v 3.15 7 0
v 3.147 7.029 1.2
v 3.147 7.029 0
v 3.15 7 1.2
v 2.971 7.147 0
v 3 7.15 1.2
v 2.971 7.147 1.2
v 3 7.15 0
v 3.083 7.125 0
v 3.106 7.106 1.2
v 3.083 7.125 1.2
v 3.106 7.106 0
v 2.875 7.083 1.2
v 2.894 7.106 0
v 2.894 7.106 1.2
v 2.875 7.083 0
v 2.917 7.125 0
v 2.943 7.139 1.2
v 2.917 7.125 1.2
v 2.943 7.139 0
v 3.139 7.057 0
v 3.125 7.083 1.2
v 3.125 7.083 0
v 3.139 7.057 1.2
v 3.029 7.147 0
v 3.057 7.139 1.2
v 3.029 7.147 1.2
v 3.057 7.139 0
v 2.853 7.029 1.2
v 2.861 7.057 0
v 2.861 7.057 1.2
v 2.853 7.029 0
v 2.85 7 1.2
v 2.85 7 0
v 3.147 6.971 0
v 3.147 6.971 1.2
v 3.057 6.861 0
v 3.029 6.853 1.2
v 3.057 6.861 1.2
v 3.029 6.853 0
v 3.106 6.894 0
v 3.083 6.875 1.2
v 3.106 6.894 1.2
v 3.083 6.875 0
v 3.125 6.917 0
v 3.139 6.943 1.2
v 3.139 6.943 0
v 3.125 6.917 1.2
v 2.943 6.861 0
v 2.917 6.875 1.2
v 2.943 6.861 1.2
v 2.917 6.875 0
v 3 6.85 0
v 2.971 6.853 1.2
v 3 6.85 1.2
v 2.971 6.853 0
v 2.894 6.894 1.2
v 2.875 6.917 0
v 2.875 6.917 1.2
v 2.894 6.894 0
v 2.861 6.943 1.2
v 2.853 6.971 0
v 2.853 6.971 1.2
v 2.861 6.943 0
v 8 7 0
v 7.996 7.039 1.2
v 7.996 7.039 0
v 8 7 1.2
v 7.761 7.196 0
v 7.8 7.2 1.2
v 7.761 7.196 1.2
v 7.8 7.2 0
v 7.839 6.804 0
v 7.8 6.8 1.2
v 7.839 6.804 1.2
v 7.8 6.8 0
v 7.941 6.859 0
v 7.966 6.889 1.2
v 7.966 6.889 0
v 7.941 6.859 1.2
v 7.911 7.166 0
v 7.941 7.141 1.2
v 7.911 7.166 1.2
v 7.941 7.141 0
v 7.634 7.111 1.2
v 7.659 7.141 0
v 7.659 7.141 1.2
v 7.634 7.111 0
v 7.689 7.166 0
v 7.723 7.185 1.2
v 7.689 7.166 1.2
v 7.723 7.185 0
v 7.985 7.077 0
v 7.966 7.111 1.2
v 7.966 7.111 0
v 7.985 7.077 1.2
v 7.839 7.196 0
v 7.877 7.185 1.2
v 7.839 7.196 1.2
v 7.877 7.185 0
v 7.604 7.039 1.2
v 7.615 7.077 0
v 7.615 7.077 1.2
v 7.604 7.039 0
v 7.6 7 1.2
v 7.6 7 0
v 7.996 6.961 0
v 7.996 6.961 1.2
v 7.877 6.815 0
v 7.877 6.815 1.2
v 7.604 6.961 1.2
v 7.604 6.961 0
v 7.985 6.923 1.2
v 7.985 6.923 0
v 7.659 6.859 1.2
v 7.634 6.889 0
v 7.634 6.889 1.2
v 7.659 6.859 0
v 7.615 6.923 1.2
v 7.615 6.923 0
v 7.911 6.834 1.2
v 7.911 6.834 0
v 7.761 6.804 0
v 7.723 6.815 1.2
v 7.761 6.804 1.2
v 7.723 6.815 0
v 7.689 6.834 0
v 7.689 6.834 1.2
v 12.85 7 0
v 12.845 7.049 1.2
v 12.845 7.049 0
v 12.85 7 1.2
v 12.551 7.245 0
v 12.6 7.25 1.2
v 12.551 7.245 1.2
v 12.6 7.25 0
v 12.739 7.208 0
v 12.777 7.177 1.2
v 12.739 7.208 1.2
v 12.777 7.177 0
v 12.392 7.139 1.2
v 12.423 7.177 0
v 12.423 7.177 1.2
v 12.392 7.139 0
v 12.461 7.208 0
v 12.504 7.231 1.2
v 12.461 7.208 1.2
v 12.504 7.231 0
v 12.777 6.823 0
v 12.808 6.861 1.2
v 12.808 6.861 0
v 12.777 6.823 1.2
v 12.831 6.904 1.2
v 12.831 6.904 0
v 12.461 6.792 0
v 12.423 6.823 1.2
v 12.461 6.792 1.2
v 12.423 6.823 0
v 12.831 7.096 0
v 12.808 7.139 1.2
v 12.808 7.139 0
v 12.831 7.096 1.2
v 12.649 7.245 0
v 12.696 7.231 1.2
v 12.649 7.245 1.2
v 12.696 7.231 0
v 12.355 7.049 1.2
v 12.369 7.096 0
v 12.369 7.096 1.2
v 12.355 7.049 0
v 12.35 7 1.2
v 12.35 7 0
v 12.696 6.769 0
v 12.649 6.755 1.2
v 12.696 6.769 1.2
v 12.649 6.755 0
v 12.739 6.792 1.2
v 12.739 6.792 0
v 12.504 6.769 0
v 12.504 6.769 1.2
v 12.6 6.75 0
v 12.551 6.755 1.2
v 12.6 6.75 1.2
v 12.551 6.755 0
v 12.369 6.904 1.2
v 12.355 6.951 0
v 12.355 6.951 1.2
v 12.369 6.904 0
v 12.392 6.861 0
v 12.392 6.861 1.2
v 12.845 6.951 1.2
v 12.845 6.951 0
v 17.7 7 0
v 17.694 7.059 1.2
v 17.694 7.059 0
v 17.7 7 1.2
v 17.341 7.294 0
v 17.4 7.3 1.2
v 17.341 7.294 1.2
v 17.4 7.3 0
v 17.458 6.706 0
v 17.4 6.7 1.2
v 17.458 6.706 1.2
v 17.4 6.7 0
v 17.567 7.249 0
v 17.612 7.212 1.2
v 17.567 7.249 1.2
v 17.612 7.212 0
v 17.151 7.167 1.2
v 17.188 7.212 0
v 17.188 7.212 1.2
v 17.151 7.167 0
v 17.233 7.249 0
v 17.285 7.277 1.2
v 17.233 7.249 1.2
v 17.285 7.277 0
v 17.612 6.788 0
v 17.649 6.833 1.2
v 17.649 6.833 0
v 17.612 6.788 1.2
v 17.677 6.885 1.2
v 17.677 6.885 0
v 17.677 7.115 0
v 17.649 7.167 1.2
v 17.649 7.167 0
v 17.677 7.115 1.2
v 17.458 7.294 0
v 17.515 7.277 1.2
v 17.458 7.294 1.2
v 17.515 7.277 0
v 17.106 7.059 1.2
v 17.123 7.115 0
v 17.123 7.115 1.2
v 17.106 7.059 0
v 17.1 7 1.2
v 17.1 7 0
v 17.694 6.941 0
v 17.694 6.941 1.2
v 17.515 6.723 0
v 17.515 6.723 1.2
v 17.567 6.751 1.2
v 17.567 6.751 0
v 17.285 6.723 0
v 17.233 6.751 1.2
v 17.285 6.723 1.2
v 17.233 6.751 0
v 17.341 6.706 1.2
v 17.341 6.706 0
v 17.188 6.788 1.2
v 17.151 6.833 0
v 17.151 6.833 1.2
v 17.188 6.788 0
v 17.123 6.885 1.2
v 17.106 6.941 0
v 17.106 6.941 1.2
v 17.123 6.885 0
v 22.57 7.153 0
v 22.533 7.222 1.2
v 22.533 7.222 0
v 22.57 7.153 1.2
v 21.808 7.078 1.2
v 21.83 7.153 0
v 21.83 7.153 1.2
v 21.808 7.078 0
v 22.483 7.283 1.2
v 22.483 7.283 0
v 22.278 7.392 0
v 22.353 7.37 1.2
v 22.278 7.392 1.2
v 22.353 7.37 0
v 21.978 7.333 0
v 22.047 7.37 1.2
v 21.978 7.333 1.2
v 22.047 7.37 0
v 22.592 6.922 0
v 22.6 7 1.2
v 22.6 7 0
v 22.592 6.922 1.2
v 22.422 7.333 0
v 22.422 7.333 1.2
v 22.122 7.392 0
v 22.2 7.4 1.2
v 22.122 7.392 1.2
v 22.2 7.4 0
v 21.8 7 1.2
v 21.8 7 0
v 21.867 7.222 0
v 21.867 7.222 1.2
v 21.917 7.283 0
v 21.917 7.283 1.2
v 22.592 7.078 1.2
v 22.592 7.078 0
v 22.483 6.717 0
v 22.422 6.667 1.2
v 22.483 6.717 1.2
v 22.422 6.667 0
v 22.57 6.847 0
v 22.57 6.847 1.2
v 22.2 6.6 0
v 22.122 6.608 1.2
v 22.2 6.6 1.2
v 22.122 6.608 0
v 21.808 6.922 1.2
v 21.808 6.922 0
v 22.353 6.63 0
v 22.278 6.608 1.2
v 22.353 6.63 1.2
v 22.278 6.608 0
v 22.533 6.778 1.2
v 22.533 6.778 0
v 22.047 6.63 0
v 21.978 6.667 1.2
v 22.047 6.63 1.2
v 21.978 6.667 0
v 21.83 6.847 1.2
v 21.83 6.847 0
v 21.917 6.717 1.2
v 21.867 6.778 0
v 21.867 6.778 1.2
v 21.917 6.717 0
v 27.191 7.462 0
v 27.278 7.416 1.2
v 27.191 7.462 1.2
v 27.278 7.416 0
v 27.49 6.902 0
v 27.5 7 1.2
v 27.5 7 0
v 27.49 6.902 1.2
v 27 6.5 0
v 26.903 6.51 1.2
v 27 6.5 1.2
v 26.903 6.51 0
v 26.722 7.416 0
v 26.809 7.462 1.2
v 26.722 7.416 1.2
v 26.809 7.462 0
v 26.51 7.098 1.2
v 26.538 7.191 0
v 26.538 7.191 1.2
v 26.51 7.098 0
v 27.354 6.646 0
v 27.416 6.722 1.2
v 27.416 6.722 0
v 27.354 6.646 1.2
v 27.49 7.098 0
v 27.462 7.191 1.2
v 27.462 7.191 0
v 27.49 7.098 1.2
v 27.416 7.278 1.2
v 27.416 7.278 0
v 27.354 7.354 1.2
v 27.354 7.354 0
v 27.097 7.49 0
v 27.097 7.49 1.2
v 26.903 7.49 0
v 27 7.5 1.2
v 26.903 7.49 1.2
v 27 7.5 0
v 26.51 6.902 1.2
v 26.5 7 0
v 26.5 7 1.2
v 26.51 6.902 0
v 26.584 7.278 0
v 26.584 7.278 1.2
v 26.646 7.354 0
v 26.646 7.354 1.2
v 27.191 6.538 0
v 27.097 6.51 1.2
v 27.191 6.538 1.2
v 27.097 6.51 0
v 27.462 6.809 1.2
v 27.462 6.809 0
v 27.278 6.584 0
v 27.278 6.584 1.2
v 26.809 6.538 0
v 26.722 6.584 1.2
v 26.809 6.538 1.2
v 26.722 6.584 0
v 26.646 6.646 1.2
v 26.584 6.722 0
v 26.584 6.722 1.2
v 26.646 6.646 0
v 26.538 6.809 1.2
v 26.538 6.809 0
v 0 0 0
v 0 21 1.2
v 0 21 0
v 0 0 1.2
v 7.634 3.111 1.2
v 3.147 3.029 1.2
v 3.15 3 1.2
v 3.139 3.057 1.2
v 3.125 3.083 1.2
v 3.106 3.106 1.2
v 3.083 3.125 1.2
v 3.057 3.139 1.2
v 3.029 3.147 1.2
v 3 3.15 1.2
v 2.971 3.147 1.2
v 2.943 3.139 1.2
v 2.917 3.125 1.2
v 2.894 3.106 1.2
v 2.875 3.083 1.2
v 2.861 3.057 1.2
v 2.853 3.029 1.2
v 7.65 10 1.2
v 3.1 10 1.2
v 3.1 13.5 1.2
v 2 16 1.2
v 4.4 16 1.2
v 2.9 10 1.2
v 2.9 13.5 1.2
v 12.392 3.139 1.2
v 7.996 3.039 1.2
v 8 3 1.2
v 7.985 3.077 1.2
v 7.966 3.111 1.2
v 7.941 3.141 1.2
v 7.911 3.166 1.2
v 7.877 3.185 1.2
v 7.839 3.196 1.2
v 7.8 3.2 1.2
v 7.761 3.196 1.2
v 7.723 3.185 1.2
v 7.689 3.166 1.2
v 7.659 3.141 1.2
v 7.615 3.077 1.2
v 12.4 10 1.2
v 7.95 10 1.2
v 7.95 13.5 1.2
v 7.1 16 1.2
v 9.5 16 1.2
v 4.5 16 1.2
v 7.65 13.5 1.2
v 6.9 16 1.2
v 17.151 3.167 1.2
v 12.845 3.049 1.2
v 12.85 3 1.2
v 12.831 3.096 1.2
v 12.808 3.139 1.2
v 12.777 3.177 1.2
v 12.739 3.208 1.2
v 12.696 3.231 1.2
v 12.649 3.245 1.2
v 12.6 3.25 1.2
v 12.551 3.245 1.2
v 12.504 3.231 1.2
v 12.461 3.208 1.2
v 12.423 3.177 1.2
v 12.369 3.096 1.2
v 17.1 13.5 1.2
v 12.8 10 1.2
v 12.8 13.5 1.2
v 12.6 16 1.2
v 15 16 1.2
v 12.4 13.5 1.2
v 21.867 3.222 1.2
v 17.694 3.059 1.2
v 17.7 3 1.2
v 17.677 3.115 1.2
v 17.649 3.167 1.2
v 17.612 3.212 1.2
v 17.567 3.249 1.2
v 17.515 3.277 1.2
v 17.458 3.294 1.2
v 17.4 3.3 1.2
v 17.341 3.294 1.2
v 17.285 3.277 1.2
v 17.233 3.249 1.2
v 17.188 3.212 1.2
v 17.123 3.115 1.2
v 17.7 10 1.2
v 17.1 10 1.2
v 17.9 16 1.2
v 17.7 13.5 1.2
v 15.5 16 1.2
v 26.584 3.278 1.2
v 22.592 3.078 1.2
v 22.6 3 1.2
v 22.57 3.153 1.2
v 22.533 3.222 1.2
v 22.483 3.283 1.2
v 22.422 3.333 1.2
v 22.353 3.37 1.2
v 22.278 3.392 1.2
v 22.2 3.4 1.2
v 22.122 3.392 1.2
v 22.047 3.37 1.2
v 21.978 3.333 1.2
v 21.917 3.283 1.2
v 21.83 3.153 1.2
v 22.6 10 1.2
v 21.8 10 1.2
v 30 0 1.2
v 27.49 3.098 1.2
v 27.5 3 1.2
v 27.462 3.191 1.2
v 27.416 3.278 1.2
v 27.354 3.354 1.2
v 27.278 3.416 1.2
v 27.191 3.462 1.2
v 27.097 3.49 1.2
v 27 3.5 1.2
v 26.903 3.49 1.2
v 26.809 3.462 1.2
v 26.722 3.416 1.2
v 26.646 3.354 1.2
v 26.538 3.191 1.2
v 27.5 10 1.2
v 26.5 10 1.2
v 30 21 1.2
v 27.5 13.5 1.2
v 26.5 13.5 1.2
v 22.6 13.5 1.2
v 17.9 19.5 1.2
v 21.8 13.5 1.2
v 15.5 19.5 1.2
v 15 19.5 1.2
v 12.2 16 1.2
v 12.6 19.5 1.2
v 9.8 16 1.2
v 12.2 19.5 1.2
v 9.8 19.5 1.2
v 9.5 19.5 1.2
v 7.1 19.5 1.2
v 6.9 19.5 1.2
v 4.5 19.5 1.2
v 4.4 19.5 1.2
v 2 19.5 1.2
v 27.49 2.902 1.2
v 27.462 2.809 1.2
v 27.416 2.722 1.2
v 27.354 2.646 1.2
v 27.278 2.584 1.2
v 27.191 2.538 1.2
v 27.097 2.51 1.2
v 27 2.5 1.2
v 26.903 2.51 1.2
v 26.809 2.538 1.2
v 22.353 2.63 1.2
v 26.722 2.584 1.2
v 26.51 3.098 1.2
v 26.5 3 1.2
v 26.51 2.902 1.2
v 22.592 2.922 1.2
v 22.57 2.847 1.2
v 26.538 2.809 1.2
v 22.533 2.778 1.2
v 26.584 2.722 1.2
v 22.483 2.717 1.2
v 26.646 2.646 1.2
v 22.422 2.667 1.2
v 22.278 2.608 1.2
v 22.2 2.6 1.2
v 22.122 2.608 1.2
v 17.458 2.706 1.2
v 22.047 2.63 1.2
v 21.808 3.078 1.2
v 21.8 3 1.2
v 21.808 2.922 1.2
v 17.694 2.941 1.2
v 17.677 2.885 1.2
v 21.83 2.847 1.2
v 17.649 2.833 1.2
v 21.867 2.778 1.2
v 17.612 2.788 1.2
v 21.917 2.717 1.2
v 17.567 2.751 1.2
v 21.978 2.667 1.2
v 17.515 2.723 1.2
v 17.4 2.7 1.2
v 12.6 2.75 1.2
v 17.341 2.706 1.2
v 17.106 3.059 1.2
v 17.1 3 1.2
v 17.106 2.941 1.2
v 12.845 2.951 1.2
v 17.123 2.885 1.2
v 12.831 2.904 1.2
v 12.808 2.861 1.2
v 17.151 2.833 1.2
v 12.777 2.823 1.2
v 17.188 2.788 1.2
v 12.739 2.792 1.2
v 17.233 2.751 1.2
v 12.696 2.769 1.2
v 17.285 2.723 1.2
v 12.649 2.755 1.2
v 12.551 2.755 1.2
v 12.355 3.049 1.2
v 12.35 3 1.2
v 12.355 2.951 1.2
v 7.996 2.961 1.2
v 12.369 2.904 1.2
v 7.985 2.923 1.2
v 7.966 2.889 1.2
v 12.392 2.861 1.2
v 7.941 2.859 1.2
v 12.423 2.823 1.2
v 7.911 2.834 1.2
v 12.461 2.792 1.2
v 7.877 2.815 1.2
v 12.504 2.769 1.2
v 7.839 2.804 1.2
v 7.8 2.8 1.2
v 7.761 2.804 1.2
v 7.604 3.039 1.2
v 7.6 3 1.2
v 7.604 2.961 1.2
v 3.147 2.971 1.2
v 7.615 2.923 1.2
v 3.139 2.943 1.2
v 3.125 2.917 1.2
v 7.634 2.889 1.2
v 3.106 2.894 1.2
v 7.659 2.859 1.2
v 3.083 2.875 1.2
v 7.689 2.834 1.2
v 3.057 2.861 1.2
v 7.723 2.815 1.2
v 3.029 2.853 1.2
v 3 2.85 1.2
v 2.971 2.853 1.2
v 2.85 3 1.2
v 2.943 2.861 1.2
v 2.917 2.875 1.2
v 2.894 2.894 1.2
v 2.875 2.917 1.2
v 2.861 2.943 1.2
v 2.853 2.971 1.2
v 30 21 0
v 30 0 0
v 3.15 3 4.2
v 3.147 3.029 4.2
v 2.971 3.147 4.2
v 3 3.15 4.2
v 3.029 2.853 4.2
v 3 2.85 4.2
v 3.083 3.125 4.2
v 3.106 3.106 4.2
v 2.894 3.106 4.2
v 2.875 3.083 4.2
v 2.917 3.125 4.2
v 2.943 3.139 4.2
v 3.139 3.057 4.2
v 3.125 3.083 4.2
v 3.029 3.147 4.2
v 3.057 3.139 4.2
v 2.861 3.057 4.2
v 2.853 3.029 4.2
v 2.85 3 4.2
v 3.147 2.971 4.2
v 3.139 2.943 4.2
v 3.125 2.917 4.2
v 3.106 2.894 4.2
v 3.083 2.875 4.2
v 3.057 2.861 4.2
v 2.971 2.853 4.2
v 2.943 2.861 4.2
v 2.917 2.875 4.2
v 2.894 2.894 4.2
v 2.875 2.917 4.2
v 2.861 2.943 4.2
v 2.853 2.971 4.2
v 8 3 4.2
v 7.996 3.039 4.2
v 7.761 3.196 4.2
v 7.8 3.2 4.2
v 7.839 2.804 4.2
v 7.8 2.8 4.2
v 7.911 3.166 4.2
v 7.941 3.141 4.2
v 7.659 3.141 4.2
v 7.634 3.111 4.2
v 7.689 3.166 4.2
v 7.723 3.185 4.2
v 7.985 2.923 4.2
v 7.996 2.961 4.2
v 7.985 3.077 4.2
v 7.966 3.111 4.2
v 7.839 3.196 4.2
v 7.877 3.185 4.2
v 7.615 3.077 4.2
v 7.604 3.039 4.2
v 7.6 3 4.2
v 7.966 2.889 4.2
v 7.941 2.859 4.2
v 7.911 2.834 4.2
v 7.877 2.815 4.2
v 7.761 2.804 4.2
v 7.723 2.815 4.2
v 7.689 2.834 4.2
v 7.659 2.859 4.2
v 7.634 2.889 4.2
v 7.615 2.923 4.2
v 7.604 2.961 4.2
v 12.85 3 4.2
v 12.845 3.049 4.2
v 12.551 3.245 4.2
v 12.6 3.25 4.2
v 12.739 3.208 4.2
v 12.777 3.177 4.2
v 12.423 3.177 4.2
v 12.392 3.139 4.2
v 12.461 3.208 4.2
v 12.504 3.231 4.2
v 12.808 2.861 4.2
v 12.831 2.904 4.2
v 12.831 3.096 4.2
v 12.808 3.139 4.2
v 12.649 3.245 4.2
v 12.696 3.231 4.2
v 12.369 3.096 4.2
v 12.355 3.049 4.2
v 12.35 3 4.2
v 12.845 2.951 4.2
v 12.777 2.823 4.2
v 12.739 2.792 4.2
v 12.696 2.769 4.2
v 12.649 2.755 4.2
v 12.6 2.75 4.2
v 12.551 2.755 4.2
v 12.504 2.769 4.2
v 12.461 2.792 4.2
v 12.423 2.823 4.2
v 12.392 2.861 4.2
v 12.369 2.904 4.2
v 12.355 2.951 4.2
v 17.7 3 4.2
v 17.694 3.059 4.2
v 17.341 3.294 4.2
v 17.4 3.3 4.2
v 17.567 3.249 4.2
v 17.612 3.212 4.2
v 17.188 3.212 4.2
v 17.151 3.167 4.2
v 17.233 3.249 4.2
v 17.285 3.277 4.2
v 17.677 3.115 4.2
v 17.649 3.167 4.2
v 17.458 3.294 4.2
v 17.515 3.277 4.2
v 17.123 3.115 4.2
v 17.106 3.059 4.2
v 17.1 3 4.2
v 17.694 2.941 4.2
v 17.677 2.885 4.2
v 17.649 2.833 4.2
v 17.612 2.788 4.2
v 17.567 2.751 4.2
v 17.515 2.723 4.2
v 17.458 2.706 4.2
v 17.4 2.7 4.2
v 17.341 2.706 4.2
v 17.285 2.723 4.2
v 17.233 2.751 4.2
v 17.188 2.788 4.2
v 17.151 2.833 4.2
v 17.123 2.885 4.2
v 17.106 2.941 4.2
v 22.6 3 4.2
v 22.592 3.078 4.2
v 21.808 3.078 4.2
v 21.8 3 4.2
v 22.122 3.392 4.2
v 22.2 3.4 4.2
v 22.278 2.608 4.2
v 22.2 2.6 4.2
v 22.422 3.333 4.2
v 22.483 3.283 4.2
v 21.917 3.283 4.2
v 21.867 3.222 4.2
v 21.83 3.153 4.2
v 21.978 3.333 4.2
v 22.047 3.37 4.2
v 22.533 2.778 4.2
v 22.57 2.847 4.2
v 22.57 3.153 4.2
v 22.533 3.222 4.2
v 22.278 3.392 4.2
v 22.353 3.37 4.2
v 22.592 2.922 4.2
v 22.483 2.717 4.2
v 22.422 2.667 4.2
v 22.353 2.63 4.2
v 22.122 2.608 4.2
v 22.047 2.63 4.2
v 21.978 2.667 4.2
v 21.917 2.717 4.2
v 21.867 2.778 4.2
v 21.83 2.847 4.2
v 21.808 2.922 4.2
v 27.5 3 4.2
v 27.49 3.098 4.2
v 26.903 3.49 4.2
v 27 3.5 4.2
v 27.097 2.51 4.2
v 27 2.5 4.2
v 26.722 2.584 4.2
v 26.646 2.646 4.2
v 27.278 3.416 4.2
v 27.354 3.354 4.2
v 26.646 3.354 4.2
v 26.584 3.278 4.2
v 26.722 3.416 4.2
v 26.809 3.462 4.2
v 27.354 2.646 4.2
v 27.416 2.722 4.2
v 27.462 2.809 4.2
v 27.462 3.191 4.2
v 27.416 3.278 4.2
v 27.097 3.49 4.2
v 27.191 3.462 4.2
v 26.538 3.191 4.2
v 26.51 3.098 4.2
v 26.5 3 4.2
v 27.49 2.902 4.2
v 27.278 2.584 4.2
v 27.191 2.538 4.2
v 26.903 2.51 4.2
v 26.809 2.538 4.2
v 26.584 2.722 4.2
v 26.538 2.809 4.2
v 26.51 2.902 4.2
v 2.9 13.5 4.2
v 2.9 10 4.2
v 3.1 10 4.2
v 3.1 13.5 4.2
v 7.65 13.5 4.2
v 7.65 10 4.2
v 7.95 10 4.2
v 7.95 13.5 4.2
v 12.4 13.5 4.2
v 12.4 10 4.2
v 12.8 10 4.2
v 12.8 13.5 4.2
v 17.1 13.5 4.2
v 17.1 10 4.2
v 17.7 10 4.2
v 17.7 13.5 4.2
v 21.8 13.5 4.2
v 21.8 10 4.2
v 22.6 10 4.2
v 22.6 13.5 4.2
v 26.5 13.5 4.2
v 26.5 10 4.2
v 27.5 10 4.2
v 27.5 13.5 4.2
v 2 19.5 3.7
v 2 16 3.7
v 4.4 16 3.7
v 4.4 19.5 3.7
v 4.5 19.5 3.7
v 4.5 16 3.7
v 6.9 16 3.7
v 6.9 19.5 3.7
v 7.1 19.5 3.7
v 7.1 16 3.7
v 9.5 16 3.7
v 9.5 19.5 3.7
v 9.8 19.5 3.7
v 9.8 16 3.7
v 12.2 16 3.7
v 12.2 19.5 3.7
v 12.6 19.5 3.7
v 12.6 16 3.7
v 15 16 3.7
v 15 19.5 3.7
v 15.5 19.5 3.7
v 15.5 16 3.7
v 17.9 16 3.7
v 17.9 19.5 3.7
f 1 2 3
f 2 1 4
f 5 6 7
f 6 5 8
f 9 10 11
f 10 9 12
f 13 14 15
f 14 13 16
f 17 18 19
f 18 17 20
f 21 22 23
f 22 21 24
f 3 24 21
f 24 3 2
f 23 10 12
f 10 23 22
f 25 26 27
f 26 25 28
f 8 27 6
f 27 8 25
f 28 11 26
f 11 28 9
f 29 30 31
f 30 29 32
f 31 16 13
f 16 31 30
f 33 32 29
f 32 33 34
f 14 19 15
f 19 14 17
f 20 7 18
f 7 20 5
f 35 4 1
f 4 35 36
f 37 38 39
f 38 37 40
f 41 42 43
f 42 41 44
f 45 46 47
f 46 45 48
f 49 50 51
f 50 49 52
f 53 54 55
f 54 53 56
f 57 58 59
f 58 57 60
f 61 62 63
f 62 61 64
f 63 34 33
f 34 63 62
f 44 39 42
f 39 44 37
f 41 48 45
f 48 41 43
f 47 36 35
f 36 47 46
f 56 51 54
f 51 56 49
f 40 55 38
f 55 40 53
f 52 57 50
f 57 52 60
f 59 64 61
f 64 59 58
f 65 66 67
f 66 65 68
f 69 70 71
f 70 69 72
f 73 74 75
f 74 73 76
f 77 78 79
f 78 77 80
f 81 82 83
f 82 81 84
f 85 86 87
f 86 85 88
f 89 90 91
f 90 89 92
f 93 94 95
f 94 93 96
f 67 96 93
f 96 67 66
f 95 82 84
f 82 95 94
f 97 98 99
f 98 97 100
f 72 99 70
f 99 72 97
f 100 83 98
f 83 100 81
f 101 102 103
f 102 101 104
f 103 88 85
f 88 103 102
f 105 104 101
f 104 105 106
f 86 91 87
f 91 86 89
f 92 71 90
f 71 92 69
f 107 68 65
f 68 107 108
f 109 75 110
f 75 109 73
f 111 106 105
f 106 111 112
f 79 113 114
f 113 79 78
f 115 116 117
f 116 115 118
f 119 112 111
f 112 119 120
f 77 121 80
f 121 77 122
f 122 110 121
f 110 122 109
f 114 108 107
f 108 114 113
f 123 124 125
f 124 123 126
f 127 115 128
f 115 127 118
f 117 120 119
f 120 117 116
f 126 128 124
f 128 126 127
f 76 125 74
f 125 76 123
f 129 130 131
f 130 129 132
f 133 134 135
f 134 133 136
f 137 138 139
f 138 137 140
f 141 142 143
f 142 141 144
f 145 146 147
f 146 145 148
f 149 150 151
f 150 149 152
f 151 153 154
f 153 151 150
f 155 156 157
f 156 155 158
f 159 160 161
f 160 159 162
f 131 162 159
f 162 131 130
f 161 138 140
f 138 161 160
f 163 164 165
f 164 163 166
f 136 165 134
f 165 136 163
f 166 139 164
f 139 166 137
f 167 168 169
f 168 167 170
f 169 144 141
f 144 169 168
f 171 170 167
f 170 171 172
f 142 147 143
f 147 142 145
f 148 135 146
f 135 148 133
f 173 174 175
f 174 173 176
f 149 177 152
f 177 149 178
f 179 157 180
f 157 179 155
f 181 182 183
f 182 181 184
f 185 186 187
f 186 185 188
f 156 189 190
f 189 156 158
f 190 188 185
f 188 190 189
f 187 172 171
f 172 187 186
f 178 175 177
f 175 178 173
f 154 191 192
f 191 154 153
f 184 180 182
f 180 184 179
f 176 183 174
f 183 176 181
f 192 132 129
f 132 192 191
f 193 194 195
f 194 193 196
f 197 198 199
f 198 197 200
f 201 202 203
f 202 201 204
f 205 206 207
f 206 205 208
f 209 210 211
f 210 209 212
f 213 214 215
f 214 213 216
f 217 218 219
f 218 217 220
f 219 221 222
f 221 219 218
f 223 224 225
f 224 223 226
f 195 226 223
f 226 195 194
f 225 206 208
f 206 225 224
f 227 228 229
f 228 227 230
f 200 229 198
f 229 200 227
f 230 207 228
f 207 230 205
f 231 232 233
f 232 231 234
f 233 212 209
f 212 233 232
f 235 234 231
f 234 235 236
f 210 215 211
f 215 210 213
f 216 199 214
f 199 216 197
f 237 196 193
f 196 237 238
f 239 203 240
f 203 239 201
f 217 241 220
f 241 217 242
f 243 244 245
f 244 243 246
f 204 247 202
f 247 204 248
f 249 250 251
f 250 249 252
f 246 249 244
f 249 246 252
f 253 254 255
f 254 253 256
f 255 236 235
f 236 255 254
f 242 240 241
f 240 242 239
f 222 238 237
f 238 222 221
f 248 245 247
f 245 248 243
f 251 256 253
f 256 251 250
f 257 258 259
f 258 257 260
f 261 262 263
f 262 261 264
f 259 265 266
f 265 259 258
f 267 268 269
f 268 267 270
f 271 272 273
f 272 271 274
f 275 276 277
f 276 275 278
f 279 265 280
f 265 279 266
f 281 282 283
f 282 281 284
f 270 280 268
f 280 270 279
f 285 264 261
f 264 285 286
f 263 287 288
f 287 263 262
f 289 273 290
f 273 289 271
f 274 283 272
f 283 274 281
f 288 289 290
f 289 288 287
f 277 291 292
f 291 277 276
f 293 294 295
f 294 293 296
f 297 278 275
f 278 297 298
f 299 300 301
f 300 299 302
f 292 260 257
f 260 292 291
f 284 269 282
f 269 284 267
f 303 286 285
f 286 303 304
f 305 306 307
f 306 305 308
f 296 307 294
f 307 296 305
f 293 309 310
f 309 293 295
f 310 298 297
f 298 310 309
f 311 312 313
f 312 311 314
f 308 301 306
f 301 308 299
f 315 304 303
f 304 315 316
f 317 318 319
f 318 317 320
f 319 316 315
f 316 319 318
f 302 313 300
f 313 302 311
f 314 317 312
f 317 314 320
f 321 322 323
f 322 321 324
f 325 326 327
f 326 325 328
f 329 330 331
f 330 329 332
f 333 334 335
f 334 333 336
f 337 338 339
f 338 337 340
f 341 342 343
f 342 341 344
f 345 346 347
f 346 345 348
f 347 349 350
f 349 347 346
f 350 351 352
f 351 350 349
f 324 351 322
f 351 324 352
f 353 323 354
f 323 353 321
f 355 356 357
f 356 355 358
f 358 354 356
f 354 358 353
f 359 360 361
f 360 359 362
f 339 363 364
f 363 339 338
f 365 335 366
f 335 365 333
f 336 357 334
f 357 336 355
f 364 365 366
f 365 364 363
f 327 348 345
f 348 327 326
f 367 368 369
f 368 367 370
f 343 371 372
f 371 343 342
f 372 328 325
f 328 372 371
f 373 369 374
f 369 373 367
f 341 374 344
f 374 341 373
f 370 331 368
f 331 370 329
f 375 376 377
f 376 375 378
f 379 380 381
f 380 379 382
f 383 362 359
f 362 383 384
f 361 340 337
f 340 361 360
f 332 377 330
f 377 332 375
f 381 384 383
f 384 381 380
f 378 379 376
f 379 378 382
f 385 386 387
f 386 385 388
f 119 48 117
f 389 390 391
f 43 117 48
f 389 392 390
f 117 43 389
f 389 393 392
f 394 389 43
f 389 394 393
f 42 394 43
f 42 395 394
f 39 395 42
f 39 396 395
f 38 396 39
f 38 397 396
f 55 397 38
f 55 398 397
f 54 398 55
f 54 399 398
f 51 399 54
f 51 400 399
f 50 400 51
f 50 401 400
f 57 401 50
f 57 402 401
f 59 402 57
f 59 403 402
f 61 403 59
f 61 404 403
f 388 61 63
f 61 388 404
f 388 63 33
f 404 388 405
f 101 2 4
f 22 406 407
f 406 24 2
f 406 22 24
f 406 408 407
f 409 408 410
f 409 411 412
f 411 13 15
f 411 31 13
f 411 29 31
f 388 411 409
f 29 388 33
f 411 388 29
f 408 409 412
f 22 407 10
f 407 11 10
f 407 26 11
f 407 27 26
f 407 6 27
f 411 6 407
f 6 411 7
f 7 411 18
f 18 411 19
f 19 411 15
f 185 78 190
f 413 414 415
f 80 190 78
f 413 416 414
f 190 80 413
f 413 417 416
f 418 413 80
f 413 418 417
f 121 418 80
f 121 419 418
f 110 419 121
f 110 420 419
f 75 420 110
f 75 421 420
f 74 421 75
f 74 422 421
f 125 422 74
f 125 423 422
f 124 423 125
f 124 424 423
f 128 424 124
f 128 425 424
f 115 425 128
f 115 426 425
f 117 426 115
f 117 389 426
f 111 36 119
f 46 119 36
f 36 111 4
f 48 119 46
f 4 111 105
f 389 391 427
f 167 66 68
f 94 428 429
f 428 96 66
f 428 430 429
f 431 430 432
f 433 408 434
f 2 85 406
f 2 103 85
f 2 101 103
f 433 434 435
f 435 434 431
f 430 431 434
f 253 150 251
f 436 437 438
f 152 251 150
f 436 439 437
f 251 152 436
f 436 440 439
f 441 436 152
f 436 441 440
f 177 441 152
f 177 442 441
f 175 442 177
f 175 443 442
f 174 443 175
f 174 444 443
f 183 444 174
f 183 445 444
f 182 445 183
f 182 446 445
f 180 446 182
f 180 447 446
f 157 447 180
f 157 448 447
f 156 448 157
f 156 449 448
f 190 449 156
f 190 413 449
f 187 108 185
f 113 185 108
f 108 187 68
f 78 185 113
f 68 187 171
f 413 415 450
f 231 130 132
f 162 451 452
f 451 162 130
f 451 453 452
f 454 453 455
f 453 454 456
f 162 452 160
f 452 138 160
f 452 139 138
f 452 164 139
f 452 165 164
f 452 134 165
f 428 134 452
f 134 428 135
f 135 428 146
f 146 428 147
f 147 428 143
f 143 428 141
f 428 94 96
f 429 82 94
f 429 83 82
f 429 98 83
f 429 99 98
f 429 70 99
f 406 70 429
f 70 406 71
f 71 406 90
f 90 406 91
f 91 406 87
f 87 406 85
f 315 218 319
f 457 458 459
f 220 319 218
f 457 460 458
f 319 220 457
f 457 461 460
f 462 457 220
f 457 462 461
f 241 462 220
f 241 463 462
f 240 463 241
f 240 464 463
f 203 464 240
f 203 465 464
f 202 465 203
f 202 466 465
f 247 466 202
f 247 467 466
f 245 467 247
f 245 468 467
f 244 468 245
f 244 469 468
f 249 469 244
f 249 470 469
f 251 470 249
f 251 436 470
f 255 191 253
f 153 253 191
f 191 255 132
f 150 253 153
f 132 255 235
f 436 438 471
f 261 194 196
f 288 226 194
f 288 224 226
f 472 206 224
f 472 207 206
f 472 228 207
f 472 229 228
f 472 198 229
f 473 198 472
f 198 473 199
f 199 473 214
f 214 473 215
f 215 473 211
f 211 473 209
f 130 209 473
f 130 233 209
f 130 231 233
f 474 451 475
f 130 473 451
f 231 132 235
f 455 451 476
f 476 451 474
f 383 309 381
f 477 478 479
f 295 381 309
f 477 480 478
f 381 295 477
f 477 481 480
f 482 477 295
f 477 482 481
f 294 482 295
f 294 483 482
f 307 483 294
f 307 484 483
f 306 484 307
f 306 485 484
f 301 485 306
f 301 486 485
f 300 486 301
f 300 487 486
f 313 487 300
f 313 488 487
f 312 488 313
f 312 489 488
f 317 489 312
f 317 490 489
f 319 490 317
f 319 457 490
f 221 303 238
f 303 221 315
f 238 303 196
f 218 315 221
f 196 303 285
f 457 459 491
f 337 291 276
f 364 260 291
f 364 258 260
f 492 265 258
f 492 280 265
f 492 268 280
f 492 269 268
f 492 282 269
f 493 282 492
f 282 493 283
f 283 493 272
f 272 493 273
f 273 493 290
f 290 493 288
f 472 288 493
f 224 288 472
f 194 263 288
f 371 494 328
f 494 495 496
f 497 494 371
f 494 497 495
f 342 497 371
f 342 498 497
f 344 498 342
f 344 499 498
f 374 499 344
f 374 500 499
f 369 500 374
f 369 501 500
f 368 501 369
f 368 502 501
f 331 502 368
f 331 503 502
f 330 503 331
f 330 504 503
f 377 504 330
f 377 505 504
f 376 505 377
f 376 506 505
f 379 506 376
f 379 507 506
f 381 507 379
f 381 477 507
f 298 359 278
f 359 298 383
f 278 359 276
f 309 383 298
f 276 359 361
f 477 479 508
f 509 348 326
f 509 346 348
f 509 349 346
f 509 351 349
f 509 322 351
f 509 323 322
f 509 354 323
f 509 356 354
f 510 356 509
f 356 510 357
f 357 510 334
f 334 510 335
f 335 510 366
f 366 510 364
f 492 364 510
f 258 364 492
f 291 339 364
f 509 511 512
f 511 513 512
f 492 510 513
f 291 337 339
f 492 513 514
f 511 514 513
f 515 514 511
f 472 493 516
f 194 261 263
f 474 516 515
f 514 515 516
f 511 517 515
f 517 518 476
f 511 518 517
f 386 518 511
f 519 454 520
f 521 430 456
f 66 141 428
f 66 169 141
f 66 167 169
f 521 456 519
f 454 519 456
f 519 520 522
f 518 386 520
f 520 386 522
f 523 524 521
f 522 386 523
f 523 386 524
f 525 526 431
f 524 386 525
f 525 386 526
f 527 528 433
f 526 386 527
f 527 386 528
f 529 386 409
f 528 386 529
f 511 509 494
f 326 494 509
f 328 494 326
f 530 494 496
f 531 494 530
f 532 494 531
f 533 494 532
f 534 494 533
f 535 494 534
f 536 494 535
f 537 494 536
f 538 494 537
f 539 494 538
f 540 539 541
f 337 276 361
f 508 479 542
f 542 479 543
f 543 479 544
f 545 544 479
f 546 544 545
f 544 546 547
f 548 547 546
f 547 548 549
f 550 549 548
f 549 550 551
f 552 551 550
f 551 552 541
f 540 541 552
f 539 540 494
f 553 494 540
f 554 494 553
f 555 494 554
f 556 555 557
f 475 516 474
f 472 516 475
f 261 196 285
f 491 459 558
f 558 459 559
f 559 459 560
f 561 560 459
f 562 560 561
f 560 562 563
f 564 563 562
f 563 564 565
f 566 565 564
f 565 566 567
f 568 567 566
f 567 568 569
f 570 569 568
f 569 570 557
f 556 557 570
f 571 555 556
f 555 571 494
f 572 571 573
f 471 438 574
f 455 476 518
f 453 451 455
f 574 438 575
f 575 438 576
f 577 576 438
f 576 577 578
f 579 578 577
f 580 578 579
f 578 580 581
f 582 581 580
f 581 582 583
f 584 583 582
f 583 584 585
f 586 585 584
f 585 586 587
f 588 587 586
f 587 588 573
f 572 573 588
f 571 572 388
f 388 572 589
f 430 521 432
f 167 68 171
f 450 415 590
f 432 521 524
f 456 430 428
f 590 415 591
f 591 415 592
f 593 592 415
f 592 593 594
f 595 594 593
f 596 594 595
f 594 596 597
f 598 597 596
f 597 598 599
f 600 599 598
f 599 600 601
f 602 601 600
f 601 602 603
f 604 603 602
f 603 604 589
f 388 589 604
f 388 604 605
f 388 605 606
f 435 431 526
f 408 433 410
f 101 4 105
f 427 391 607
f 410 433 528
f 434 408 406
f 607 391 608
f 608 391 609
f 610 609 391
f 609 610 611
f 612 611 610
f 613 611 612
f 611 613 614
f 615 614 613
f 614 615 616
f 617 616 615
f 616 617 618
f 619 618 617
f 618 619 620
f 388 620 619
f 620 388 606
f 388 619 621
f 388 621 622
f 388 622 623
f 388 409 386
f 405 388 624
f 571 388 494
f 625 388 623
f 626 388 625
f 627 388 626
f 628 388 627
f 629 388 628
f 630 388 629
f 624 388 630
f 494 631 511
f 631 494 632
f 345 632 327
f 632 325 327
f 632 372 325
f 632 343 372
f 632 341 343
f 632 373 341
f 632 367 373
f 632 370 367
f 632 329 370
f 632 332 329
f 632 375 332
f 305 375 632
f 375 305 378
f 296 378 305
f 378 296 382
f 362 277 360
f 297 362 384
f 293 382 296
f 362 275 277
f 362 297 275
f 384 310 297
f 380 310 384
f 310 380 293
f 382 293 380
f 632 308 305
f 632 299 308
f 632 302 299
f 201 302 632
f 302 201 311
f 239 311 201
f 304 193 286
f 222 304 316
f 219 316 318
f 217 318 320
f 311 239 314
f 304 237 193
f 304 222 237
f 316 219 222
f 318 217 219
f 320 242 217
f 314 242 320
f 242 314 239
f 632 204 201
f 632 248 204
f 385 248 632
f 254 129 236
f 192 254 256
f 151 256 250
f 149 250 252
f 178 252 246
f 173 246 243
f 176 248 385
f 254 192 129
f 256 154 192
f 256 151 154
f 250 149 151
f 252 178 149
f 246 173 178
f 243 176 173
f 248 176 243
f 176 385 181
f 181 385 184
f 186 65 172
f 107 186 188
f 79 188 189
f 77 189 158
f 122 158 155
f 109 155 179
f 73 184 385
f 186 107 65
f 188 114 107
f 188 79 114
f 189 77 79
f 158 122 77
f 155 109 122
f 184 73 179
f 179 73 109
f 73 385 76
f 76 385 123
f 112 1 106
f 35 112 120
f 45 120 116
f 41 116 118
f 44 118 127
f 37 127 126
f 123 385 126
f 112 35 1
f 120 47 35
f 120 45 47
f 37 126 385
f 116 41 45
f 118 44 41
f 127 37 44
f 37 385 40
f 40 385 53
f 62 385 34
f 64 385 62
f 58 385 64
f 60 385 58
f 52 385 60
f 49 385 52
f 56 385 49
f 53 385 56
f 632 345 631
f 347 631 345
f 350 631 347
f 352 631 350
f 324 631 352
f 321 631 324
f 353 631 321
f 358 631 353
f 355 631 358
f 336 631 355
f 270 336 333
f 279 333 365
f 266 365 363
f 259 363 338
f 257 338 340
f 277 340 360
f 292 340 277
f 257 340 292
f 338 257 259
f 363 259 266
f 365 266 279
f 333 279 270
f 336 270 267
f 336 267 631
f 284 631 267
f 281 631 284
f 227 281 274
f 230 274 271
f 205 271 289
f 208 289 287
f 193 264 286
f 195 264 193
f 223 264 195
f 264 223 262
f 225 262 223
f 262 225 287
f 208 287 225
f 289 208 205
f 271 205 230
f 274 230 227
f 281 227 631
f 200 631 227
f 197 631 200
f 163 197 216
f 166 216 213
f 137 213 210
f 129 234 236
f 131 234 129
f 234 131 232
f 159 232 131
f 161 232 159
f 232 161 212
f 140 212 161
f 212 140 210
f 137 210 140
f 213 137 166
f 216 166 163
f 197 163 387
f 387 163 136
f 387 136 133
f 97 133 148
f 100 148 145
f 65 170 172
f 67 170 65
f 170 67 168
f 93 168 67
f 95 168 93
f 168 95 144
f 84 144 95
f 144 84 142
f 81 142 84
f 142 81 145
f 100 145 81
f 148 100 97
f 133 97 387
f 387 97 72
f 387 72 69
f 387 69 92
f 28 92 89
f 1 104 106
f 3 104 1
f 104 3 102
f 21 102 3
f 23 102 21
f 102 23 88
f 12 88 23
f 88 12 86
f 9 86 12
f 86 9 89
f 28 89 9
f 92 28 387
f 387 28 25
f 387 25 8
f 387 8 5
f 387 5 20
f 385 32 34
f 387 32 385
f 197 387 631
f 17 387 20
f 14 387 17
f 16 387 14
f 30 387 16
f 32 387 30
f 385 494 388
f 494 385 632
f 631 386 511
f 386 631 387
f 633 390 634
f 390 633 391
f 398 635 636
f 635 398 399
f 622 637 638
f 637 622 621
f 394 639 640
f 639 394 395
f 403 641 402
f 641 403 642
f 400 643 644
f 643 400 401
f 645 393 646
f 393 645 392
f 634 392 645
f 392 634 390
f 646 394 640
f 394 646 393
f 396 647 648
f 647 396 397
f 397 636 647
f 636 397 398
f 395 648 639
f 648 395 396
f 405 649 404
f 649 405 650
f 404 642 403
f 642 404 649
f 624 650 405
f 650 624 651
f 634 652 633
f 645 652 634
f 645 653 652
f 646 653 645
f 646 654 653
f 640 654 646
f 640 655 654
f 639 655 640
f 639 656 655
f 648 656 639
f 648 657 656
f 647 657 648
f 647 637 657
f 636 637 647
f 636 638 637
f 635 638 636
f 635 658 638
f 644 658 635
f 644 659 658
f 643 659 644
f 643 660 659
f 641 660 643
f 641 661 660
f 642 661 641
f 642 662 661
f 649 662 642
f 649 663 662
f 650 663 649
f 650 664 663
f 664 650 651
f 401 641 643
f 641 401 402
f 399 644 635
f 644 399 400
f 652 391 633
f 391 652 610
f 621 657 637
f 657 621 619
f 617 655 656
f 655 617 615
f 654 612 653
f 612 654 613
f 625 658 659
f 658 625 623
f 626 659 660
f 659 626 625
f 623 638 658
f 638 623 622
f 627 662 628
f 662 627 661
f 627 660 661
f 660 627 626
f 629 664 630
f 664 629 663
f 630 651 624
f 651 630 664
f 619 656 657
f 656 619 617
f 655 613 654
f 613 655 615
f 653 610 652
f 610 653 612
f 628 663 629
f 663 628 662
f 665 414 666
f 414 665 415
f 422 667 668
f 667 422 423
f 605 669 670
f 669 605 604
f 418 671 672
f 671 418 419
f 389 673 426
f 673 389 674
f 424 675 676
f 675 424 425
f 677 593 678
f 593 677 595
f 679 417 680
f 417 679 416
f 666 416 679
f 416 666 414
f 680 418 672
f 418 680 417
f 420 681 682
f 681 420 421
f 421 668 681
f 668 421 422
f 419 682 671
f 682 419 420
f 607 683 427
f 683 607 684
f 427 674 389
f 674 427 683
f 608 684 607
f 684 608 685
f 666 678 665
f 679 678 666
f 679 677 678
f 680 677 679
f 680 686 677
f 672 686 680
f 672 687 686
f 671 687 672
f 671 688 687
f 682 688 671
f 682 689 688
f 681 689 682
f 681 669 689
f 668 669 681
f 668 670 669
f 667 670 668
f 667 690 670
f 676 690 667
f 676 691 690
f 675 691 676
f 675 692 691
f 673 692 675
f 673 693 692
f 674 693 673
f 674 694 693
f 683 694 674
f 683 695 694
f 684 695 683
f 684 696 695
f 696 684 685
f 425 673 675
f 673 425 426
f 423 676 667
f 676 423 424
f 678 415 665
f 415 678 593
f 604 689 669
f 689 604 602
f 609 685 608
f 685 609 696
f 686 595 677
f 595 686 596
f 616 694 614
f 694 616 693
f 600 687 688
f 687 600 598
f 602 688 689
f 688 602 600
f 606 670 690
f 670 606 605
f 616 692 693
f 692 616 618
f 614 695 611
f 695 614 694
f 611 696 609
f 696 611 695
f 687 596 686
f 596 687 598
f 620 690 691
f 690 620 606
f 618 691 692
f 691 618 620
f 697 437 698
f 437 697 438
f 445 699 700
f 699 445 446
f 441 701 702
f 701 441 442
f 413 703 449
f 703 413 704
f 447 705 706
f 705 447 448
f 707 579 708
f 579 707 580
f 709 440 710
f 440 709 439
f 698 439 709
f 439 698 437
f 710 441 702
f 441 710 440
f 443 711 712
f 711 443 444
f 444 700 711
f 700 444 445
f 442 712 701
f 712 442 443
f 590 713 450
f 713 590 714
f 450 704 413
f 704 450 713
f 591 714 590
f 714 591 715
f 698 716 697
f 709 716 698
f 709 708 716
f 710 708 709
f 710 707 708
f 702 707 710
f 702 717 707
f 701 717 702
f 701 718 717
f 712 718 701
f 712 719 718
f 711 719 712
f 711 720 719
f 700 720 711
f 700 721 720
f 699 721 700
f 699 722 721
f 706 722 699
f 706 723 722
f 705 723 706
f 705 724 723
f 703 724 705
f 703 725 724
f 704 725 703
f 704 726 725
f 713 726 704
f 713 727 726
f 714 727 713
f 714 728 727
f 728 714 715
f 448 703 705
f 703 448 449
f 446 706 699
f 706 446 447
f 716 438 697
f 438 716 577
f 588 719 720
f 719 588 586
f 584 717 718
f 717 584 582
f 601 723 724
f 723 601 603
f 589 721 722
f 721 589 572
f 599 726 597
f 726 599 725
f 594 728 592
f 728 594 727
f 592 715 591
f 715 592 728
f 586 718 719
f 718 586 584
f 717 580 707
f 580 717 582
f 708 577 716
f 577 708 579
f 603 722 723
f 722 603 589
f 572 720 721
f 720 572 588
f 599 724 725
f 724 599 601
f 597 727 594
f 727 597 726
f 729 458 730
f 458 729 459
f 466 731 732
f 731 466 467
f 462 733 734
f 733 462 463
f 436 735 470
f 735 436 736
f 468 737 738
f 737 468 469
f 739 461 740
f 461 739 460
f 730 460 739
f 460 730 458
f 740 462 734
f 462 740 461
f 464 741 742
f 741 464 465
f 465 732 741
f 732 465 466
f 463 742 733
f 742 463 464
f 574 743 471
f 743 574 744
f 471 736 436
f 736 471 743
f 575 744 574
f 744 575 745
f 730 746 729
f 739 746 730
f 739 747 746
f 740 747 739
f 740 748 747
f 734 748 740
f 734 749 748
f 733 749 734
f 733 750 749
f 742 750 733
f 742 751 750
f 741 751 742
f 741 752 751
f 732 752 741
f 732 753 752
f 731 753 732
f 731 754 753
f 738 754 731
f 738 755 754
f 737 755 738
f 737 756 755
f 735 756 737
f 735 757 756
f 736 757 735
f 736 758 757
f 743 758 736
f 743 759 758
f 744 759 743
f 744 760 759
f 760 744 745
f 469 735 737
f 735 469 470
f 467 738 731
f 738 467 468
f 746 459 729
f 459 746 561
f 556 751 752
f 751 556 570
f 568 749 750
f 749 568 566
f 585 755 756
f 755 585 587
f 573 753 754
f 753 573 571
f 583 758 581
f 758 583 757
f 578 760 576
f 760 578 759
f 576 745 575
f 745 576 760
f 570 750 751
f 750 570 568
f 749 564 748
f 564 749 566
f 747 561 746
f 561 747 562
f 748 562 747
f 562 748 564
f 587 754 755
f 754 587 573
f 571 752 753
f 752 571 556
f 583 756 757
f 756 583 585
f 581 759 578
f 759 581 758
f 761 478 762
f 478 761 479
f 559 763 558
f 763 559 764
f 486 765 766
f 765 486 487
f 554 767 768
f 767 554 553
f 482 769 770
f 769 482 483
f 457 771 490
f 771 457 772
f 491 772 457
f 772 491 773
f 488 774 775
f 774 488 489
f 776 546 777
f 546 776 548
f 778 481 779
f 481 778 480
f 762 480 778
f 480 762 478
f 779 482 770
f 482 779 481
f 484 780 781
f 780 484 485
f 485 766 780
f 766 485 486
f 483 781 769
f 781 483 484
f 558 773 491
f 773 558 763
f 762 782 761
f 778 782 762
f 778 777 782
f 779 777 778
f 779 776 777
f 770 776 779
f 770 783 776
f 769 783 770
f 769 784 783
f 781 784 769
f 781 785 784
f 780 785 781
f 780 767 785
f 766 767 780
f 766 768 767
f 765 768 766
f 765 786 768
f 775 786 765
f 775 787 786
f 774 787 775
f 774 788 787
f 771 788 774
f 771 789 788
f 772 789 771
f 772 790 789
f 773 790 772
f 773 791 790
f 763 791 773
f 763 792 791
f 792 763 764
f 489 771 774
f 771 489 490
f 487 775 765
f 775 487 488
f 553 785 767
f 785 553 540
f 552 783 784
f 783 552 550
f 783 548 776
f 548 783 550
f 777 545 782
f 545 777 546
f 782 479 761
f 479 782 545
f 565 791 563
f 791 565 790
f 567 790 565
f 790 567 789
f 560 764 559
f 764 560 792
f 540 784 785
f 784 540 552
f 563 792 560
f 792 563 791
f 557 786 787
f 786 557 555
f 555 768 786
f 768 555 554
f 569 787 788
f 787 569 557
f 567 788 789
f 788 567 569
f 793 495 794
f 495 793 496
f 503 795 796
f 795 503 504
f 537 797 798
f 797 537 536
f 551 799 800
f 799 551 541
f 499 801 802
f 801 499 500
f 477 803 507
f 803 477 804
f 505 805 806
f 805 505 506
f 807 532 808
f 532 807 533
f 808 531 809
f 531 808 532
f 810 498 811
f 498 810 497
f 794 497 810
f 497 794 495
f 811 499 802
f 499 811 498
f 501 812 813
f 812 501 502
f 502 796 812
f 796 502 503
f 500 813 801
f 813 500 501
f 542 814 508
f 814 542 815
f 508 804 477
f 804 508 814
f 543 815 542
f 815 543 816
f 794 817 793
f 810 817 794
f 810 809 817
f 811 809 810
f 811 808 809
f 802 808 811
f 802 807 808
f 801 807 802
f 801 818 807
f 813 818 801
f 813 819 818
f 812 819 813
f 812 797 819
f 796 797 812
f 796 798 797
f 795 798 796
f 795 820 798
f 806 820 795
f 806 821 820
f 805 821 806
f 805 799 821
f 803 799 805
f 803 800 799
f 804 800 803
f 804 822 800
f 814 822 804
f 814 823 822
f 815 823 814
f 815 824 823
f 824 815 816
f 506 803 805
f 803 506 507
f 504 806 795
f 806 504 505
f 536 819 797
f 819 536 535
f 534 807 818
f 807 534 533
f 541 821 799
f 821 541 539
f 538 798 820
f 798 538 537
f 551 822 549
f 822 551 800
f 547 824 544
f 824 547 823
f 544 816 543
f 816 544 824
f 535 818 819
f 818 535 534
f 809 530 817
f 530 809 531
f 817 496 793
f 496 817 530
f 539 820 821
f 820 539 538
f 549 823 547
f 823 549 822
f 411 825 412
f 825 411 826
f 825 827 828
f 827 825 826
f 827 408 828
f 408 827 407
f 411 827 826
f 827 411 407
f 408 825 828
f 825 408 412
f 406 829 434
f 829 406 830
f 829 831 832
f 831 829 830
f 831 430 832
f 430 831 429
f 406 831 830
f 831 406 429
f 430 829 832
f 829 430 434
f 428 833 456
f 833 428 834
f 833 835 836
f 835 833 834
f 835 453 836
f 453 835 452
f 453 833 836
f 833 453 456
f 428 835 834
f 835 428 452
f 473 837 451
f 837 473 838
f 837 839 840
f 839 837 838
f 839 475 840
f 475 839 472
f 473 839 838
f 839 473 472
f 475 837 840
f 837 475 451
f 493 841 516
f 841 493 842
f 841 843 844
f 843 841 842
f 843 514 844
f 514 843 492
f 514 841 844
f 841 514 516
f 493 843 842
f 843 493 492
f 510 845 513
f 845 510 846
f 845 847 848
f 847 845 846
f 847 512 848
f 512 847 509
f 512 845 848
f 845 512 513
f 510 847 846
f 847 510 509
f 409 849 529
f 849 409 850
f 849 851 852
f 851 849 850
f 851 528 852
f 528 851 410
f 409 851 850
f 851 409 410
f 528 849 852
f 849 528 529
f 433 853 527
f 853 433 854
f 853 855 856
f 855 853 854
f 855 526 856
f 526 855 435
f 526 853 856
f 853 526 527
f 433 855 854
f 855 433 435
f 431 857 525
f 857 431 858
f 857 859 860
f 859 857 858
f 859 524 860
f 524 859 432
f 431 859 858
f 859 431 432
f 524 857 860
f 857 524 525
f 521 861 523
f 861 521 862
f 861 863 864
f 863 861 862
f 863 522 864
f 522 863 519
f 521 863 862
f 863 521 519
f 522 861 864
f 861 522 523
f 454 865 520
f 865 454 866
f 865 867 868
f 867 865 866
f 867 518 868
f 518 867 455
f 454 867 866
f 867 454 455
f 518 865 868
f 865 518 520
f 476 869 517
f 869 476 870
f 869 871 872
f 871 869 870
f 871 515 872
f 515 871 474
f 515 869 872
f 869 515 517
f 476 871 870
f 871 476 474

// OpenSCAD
// Kalibracinis kuponas - bendras visiems dervų tipams.
// Spausdinamas tiesiai ant plokštės (be atramų). Eilės iš priekio į galą:
//   A smeigtukai, B skylutės, C plonos sienelės, D tarpai tarp blokelių.
// Skaičiai sąraše = matmuo mm, iš kairės į dešinę. Ekrano pikselis 0,1275 mm,
// tad 0,3 mm yra apie 2 pikselius - apatinė riba, kurią dar verta tikrinti.
$fn = 32;
L = 30; W = 21; T = 1.2;            // pagrindas
sizes = [0.3, 0.4, 0.5, 0.6, 0.8, 1.0];
walls = [0.2, 0.3, 0.4, 0.6, 0.8, 1.0];
gaps  = [0.1, 0.2, 0.3, 0.4, 0.5];
x0 = 3; dx = 4.8;

difference() {
  cube([L, W, T]);
  // B: skylutės per pagrindą (plokštė jas uždaro iš apačios - tikrinam, ar neužsipildo)
  for (i = [0:len(sizes)-1]) translate([x0 + i*dx, 7, -0.1]) cylinder(d = sizes[i], h = T + 0.2);
}
// A: smeigtukai 3 mm aukščio
for (i = [0:len(sizes)-1]) translate([x0 + i*dx, 3, T]) cylinder(d = sizes[i], h = 3);
// C: sienelės 3,5 mm ilgio, 3 mm aukščio
for (i = [0:len(walls)-1]) translate([x0 + i*dx - walls[i]/2, 10, T]) cube([walls[i], 3.5, 3]);
// D: blokeliai su vis platesniu tarpu
bx = 2.4;
for (i = [0:len(gaps)]) {
  xs = 2 + i*bx + (i > 0 ? sum(gaps, i) : 0);
  translate([xs, 16, T]) cube([bx, 3.5, 2.5]);
}
function sum(v, n) = n <= 0 ? 0 : v[n-1] + sum(v, n-1);
